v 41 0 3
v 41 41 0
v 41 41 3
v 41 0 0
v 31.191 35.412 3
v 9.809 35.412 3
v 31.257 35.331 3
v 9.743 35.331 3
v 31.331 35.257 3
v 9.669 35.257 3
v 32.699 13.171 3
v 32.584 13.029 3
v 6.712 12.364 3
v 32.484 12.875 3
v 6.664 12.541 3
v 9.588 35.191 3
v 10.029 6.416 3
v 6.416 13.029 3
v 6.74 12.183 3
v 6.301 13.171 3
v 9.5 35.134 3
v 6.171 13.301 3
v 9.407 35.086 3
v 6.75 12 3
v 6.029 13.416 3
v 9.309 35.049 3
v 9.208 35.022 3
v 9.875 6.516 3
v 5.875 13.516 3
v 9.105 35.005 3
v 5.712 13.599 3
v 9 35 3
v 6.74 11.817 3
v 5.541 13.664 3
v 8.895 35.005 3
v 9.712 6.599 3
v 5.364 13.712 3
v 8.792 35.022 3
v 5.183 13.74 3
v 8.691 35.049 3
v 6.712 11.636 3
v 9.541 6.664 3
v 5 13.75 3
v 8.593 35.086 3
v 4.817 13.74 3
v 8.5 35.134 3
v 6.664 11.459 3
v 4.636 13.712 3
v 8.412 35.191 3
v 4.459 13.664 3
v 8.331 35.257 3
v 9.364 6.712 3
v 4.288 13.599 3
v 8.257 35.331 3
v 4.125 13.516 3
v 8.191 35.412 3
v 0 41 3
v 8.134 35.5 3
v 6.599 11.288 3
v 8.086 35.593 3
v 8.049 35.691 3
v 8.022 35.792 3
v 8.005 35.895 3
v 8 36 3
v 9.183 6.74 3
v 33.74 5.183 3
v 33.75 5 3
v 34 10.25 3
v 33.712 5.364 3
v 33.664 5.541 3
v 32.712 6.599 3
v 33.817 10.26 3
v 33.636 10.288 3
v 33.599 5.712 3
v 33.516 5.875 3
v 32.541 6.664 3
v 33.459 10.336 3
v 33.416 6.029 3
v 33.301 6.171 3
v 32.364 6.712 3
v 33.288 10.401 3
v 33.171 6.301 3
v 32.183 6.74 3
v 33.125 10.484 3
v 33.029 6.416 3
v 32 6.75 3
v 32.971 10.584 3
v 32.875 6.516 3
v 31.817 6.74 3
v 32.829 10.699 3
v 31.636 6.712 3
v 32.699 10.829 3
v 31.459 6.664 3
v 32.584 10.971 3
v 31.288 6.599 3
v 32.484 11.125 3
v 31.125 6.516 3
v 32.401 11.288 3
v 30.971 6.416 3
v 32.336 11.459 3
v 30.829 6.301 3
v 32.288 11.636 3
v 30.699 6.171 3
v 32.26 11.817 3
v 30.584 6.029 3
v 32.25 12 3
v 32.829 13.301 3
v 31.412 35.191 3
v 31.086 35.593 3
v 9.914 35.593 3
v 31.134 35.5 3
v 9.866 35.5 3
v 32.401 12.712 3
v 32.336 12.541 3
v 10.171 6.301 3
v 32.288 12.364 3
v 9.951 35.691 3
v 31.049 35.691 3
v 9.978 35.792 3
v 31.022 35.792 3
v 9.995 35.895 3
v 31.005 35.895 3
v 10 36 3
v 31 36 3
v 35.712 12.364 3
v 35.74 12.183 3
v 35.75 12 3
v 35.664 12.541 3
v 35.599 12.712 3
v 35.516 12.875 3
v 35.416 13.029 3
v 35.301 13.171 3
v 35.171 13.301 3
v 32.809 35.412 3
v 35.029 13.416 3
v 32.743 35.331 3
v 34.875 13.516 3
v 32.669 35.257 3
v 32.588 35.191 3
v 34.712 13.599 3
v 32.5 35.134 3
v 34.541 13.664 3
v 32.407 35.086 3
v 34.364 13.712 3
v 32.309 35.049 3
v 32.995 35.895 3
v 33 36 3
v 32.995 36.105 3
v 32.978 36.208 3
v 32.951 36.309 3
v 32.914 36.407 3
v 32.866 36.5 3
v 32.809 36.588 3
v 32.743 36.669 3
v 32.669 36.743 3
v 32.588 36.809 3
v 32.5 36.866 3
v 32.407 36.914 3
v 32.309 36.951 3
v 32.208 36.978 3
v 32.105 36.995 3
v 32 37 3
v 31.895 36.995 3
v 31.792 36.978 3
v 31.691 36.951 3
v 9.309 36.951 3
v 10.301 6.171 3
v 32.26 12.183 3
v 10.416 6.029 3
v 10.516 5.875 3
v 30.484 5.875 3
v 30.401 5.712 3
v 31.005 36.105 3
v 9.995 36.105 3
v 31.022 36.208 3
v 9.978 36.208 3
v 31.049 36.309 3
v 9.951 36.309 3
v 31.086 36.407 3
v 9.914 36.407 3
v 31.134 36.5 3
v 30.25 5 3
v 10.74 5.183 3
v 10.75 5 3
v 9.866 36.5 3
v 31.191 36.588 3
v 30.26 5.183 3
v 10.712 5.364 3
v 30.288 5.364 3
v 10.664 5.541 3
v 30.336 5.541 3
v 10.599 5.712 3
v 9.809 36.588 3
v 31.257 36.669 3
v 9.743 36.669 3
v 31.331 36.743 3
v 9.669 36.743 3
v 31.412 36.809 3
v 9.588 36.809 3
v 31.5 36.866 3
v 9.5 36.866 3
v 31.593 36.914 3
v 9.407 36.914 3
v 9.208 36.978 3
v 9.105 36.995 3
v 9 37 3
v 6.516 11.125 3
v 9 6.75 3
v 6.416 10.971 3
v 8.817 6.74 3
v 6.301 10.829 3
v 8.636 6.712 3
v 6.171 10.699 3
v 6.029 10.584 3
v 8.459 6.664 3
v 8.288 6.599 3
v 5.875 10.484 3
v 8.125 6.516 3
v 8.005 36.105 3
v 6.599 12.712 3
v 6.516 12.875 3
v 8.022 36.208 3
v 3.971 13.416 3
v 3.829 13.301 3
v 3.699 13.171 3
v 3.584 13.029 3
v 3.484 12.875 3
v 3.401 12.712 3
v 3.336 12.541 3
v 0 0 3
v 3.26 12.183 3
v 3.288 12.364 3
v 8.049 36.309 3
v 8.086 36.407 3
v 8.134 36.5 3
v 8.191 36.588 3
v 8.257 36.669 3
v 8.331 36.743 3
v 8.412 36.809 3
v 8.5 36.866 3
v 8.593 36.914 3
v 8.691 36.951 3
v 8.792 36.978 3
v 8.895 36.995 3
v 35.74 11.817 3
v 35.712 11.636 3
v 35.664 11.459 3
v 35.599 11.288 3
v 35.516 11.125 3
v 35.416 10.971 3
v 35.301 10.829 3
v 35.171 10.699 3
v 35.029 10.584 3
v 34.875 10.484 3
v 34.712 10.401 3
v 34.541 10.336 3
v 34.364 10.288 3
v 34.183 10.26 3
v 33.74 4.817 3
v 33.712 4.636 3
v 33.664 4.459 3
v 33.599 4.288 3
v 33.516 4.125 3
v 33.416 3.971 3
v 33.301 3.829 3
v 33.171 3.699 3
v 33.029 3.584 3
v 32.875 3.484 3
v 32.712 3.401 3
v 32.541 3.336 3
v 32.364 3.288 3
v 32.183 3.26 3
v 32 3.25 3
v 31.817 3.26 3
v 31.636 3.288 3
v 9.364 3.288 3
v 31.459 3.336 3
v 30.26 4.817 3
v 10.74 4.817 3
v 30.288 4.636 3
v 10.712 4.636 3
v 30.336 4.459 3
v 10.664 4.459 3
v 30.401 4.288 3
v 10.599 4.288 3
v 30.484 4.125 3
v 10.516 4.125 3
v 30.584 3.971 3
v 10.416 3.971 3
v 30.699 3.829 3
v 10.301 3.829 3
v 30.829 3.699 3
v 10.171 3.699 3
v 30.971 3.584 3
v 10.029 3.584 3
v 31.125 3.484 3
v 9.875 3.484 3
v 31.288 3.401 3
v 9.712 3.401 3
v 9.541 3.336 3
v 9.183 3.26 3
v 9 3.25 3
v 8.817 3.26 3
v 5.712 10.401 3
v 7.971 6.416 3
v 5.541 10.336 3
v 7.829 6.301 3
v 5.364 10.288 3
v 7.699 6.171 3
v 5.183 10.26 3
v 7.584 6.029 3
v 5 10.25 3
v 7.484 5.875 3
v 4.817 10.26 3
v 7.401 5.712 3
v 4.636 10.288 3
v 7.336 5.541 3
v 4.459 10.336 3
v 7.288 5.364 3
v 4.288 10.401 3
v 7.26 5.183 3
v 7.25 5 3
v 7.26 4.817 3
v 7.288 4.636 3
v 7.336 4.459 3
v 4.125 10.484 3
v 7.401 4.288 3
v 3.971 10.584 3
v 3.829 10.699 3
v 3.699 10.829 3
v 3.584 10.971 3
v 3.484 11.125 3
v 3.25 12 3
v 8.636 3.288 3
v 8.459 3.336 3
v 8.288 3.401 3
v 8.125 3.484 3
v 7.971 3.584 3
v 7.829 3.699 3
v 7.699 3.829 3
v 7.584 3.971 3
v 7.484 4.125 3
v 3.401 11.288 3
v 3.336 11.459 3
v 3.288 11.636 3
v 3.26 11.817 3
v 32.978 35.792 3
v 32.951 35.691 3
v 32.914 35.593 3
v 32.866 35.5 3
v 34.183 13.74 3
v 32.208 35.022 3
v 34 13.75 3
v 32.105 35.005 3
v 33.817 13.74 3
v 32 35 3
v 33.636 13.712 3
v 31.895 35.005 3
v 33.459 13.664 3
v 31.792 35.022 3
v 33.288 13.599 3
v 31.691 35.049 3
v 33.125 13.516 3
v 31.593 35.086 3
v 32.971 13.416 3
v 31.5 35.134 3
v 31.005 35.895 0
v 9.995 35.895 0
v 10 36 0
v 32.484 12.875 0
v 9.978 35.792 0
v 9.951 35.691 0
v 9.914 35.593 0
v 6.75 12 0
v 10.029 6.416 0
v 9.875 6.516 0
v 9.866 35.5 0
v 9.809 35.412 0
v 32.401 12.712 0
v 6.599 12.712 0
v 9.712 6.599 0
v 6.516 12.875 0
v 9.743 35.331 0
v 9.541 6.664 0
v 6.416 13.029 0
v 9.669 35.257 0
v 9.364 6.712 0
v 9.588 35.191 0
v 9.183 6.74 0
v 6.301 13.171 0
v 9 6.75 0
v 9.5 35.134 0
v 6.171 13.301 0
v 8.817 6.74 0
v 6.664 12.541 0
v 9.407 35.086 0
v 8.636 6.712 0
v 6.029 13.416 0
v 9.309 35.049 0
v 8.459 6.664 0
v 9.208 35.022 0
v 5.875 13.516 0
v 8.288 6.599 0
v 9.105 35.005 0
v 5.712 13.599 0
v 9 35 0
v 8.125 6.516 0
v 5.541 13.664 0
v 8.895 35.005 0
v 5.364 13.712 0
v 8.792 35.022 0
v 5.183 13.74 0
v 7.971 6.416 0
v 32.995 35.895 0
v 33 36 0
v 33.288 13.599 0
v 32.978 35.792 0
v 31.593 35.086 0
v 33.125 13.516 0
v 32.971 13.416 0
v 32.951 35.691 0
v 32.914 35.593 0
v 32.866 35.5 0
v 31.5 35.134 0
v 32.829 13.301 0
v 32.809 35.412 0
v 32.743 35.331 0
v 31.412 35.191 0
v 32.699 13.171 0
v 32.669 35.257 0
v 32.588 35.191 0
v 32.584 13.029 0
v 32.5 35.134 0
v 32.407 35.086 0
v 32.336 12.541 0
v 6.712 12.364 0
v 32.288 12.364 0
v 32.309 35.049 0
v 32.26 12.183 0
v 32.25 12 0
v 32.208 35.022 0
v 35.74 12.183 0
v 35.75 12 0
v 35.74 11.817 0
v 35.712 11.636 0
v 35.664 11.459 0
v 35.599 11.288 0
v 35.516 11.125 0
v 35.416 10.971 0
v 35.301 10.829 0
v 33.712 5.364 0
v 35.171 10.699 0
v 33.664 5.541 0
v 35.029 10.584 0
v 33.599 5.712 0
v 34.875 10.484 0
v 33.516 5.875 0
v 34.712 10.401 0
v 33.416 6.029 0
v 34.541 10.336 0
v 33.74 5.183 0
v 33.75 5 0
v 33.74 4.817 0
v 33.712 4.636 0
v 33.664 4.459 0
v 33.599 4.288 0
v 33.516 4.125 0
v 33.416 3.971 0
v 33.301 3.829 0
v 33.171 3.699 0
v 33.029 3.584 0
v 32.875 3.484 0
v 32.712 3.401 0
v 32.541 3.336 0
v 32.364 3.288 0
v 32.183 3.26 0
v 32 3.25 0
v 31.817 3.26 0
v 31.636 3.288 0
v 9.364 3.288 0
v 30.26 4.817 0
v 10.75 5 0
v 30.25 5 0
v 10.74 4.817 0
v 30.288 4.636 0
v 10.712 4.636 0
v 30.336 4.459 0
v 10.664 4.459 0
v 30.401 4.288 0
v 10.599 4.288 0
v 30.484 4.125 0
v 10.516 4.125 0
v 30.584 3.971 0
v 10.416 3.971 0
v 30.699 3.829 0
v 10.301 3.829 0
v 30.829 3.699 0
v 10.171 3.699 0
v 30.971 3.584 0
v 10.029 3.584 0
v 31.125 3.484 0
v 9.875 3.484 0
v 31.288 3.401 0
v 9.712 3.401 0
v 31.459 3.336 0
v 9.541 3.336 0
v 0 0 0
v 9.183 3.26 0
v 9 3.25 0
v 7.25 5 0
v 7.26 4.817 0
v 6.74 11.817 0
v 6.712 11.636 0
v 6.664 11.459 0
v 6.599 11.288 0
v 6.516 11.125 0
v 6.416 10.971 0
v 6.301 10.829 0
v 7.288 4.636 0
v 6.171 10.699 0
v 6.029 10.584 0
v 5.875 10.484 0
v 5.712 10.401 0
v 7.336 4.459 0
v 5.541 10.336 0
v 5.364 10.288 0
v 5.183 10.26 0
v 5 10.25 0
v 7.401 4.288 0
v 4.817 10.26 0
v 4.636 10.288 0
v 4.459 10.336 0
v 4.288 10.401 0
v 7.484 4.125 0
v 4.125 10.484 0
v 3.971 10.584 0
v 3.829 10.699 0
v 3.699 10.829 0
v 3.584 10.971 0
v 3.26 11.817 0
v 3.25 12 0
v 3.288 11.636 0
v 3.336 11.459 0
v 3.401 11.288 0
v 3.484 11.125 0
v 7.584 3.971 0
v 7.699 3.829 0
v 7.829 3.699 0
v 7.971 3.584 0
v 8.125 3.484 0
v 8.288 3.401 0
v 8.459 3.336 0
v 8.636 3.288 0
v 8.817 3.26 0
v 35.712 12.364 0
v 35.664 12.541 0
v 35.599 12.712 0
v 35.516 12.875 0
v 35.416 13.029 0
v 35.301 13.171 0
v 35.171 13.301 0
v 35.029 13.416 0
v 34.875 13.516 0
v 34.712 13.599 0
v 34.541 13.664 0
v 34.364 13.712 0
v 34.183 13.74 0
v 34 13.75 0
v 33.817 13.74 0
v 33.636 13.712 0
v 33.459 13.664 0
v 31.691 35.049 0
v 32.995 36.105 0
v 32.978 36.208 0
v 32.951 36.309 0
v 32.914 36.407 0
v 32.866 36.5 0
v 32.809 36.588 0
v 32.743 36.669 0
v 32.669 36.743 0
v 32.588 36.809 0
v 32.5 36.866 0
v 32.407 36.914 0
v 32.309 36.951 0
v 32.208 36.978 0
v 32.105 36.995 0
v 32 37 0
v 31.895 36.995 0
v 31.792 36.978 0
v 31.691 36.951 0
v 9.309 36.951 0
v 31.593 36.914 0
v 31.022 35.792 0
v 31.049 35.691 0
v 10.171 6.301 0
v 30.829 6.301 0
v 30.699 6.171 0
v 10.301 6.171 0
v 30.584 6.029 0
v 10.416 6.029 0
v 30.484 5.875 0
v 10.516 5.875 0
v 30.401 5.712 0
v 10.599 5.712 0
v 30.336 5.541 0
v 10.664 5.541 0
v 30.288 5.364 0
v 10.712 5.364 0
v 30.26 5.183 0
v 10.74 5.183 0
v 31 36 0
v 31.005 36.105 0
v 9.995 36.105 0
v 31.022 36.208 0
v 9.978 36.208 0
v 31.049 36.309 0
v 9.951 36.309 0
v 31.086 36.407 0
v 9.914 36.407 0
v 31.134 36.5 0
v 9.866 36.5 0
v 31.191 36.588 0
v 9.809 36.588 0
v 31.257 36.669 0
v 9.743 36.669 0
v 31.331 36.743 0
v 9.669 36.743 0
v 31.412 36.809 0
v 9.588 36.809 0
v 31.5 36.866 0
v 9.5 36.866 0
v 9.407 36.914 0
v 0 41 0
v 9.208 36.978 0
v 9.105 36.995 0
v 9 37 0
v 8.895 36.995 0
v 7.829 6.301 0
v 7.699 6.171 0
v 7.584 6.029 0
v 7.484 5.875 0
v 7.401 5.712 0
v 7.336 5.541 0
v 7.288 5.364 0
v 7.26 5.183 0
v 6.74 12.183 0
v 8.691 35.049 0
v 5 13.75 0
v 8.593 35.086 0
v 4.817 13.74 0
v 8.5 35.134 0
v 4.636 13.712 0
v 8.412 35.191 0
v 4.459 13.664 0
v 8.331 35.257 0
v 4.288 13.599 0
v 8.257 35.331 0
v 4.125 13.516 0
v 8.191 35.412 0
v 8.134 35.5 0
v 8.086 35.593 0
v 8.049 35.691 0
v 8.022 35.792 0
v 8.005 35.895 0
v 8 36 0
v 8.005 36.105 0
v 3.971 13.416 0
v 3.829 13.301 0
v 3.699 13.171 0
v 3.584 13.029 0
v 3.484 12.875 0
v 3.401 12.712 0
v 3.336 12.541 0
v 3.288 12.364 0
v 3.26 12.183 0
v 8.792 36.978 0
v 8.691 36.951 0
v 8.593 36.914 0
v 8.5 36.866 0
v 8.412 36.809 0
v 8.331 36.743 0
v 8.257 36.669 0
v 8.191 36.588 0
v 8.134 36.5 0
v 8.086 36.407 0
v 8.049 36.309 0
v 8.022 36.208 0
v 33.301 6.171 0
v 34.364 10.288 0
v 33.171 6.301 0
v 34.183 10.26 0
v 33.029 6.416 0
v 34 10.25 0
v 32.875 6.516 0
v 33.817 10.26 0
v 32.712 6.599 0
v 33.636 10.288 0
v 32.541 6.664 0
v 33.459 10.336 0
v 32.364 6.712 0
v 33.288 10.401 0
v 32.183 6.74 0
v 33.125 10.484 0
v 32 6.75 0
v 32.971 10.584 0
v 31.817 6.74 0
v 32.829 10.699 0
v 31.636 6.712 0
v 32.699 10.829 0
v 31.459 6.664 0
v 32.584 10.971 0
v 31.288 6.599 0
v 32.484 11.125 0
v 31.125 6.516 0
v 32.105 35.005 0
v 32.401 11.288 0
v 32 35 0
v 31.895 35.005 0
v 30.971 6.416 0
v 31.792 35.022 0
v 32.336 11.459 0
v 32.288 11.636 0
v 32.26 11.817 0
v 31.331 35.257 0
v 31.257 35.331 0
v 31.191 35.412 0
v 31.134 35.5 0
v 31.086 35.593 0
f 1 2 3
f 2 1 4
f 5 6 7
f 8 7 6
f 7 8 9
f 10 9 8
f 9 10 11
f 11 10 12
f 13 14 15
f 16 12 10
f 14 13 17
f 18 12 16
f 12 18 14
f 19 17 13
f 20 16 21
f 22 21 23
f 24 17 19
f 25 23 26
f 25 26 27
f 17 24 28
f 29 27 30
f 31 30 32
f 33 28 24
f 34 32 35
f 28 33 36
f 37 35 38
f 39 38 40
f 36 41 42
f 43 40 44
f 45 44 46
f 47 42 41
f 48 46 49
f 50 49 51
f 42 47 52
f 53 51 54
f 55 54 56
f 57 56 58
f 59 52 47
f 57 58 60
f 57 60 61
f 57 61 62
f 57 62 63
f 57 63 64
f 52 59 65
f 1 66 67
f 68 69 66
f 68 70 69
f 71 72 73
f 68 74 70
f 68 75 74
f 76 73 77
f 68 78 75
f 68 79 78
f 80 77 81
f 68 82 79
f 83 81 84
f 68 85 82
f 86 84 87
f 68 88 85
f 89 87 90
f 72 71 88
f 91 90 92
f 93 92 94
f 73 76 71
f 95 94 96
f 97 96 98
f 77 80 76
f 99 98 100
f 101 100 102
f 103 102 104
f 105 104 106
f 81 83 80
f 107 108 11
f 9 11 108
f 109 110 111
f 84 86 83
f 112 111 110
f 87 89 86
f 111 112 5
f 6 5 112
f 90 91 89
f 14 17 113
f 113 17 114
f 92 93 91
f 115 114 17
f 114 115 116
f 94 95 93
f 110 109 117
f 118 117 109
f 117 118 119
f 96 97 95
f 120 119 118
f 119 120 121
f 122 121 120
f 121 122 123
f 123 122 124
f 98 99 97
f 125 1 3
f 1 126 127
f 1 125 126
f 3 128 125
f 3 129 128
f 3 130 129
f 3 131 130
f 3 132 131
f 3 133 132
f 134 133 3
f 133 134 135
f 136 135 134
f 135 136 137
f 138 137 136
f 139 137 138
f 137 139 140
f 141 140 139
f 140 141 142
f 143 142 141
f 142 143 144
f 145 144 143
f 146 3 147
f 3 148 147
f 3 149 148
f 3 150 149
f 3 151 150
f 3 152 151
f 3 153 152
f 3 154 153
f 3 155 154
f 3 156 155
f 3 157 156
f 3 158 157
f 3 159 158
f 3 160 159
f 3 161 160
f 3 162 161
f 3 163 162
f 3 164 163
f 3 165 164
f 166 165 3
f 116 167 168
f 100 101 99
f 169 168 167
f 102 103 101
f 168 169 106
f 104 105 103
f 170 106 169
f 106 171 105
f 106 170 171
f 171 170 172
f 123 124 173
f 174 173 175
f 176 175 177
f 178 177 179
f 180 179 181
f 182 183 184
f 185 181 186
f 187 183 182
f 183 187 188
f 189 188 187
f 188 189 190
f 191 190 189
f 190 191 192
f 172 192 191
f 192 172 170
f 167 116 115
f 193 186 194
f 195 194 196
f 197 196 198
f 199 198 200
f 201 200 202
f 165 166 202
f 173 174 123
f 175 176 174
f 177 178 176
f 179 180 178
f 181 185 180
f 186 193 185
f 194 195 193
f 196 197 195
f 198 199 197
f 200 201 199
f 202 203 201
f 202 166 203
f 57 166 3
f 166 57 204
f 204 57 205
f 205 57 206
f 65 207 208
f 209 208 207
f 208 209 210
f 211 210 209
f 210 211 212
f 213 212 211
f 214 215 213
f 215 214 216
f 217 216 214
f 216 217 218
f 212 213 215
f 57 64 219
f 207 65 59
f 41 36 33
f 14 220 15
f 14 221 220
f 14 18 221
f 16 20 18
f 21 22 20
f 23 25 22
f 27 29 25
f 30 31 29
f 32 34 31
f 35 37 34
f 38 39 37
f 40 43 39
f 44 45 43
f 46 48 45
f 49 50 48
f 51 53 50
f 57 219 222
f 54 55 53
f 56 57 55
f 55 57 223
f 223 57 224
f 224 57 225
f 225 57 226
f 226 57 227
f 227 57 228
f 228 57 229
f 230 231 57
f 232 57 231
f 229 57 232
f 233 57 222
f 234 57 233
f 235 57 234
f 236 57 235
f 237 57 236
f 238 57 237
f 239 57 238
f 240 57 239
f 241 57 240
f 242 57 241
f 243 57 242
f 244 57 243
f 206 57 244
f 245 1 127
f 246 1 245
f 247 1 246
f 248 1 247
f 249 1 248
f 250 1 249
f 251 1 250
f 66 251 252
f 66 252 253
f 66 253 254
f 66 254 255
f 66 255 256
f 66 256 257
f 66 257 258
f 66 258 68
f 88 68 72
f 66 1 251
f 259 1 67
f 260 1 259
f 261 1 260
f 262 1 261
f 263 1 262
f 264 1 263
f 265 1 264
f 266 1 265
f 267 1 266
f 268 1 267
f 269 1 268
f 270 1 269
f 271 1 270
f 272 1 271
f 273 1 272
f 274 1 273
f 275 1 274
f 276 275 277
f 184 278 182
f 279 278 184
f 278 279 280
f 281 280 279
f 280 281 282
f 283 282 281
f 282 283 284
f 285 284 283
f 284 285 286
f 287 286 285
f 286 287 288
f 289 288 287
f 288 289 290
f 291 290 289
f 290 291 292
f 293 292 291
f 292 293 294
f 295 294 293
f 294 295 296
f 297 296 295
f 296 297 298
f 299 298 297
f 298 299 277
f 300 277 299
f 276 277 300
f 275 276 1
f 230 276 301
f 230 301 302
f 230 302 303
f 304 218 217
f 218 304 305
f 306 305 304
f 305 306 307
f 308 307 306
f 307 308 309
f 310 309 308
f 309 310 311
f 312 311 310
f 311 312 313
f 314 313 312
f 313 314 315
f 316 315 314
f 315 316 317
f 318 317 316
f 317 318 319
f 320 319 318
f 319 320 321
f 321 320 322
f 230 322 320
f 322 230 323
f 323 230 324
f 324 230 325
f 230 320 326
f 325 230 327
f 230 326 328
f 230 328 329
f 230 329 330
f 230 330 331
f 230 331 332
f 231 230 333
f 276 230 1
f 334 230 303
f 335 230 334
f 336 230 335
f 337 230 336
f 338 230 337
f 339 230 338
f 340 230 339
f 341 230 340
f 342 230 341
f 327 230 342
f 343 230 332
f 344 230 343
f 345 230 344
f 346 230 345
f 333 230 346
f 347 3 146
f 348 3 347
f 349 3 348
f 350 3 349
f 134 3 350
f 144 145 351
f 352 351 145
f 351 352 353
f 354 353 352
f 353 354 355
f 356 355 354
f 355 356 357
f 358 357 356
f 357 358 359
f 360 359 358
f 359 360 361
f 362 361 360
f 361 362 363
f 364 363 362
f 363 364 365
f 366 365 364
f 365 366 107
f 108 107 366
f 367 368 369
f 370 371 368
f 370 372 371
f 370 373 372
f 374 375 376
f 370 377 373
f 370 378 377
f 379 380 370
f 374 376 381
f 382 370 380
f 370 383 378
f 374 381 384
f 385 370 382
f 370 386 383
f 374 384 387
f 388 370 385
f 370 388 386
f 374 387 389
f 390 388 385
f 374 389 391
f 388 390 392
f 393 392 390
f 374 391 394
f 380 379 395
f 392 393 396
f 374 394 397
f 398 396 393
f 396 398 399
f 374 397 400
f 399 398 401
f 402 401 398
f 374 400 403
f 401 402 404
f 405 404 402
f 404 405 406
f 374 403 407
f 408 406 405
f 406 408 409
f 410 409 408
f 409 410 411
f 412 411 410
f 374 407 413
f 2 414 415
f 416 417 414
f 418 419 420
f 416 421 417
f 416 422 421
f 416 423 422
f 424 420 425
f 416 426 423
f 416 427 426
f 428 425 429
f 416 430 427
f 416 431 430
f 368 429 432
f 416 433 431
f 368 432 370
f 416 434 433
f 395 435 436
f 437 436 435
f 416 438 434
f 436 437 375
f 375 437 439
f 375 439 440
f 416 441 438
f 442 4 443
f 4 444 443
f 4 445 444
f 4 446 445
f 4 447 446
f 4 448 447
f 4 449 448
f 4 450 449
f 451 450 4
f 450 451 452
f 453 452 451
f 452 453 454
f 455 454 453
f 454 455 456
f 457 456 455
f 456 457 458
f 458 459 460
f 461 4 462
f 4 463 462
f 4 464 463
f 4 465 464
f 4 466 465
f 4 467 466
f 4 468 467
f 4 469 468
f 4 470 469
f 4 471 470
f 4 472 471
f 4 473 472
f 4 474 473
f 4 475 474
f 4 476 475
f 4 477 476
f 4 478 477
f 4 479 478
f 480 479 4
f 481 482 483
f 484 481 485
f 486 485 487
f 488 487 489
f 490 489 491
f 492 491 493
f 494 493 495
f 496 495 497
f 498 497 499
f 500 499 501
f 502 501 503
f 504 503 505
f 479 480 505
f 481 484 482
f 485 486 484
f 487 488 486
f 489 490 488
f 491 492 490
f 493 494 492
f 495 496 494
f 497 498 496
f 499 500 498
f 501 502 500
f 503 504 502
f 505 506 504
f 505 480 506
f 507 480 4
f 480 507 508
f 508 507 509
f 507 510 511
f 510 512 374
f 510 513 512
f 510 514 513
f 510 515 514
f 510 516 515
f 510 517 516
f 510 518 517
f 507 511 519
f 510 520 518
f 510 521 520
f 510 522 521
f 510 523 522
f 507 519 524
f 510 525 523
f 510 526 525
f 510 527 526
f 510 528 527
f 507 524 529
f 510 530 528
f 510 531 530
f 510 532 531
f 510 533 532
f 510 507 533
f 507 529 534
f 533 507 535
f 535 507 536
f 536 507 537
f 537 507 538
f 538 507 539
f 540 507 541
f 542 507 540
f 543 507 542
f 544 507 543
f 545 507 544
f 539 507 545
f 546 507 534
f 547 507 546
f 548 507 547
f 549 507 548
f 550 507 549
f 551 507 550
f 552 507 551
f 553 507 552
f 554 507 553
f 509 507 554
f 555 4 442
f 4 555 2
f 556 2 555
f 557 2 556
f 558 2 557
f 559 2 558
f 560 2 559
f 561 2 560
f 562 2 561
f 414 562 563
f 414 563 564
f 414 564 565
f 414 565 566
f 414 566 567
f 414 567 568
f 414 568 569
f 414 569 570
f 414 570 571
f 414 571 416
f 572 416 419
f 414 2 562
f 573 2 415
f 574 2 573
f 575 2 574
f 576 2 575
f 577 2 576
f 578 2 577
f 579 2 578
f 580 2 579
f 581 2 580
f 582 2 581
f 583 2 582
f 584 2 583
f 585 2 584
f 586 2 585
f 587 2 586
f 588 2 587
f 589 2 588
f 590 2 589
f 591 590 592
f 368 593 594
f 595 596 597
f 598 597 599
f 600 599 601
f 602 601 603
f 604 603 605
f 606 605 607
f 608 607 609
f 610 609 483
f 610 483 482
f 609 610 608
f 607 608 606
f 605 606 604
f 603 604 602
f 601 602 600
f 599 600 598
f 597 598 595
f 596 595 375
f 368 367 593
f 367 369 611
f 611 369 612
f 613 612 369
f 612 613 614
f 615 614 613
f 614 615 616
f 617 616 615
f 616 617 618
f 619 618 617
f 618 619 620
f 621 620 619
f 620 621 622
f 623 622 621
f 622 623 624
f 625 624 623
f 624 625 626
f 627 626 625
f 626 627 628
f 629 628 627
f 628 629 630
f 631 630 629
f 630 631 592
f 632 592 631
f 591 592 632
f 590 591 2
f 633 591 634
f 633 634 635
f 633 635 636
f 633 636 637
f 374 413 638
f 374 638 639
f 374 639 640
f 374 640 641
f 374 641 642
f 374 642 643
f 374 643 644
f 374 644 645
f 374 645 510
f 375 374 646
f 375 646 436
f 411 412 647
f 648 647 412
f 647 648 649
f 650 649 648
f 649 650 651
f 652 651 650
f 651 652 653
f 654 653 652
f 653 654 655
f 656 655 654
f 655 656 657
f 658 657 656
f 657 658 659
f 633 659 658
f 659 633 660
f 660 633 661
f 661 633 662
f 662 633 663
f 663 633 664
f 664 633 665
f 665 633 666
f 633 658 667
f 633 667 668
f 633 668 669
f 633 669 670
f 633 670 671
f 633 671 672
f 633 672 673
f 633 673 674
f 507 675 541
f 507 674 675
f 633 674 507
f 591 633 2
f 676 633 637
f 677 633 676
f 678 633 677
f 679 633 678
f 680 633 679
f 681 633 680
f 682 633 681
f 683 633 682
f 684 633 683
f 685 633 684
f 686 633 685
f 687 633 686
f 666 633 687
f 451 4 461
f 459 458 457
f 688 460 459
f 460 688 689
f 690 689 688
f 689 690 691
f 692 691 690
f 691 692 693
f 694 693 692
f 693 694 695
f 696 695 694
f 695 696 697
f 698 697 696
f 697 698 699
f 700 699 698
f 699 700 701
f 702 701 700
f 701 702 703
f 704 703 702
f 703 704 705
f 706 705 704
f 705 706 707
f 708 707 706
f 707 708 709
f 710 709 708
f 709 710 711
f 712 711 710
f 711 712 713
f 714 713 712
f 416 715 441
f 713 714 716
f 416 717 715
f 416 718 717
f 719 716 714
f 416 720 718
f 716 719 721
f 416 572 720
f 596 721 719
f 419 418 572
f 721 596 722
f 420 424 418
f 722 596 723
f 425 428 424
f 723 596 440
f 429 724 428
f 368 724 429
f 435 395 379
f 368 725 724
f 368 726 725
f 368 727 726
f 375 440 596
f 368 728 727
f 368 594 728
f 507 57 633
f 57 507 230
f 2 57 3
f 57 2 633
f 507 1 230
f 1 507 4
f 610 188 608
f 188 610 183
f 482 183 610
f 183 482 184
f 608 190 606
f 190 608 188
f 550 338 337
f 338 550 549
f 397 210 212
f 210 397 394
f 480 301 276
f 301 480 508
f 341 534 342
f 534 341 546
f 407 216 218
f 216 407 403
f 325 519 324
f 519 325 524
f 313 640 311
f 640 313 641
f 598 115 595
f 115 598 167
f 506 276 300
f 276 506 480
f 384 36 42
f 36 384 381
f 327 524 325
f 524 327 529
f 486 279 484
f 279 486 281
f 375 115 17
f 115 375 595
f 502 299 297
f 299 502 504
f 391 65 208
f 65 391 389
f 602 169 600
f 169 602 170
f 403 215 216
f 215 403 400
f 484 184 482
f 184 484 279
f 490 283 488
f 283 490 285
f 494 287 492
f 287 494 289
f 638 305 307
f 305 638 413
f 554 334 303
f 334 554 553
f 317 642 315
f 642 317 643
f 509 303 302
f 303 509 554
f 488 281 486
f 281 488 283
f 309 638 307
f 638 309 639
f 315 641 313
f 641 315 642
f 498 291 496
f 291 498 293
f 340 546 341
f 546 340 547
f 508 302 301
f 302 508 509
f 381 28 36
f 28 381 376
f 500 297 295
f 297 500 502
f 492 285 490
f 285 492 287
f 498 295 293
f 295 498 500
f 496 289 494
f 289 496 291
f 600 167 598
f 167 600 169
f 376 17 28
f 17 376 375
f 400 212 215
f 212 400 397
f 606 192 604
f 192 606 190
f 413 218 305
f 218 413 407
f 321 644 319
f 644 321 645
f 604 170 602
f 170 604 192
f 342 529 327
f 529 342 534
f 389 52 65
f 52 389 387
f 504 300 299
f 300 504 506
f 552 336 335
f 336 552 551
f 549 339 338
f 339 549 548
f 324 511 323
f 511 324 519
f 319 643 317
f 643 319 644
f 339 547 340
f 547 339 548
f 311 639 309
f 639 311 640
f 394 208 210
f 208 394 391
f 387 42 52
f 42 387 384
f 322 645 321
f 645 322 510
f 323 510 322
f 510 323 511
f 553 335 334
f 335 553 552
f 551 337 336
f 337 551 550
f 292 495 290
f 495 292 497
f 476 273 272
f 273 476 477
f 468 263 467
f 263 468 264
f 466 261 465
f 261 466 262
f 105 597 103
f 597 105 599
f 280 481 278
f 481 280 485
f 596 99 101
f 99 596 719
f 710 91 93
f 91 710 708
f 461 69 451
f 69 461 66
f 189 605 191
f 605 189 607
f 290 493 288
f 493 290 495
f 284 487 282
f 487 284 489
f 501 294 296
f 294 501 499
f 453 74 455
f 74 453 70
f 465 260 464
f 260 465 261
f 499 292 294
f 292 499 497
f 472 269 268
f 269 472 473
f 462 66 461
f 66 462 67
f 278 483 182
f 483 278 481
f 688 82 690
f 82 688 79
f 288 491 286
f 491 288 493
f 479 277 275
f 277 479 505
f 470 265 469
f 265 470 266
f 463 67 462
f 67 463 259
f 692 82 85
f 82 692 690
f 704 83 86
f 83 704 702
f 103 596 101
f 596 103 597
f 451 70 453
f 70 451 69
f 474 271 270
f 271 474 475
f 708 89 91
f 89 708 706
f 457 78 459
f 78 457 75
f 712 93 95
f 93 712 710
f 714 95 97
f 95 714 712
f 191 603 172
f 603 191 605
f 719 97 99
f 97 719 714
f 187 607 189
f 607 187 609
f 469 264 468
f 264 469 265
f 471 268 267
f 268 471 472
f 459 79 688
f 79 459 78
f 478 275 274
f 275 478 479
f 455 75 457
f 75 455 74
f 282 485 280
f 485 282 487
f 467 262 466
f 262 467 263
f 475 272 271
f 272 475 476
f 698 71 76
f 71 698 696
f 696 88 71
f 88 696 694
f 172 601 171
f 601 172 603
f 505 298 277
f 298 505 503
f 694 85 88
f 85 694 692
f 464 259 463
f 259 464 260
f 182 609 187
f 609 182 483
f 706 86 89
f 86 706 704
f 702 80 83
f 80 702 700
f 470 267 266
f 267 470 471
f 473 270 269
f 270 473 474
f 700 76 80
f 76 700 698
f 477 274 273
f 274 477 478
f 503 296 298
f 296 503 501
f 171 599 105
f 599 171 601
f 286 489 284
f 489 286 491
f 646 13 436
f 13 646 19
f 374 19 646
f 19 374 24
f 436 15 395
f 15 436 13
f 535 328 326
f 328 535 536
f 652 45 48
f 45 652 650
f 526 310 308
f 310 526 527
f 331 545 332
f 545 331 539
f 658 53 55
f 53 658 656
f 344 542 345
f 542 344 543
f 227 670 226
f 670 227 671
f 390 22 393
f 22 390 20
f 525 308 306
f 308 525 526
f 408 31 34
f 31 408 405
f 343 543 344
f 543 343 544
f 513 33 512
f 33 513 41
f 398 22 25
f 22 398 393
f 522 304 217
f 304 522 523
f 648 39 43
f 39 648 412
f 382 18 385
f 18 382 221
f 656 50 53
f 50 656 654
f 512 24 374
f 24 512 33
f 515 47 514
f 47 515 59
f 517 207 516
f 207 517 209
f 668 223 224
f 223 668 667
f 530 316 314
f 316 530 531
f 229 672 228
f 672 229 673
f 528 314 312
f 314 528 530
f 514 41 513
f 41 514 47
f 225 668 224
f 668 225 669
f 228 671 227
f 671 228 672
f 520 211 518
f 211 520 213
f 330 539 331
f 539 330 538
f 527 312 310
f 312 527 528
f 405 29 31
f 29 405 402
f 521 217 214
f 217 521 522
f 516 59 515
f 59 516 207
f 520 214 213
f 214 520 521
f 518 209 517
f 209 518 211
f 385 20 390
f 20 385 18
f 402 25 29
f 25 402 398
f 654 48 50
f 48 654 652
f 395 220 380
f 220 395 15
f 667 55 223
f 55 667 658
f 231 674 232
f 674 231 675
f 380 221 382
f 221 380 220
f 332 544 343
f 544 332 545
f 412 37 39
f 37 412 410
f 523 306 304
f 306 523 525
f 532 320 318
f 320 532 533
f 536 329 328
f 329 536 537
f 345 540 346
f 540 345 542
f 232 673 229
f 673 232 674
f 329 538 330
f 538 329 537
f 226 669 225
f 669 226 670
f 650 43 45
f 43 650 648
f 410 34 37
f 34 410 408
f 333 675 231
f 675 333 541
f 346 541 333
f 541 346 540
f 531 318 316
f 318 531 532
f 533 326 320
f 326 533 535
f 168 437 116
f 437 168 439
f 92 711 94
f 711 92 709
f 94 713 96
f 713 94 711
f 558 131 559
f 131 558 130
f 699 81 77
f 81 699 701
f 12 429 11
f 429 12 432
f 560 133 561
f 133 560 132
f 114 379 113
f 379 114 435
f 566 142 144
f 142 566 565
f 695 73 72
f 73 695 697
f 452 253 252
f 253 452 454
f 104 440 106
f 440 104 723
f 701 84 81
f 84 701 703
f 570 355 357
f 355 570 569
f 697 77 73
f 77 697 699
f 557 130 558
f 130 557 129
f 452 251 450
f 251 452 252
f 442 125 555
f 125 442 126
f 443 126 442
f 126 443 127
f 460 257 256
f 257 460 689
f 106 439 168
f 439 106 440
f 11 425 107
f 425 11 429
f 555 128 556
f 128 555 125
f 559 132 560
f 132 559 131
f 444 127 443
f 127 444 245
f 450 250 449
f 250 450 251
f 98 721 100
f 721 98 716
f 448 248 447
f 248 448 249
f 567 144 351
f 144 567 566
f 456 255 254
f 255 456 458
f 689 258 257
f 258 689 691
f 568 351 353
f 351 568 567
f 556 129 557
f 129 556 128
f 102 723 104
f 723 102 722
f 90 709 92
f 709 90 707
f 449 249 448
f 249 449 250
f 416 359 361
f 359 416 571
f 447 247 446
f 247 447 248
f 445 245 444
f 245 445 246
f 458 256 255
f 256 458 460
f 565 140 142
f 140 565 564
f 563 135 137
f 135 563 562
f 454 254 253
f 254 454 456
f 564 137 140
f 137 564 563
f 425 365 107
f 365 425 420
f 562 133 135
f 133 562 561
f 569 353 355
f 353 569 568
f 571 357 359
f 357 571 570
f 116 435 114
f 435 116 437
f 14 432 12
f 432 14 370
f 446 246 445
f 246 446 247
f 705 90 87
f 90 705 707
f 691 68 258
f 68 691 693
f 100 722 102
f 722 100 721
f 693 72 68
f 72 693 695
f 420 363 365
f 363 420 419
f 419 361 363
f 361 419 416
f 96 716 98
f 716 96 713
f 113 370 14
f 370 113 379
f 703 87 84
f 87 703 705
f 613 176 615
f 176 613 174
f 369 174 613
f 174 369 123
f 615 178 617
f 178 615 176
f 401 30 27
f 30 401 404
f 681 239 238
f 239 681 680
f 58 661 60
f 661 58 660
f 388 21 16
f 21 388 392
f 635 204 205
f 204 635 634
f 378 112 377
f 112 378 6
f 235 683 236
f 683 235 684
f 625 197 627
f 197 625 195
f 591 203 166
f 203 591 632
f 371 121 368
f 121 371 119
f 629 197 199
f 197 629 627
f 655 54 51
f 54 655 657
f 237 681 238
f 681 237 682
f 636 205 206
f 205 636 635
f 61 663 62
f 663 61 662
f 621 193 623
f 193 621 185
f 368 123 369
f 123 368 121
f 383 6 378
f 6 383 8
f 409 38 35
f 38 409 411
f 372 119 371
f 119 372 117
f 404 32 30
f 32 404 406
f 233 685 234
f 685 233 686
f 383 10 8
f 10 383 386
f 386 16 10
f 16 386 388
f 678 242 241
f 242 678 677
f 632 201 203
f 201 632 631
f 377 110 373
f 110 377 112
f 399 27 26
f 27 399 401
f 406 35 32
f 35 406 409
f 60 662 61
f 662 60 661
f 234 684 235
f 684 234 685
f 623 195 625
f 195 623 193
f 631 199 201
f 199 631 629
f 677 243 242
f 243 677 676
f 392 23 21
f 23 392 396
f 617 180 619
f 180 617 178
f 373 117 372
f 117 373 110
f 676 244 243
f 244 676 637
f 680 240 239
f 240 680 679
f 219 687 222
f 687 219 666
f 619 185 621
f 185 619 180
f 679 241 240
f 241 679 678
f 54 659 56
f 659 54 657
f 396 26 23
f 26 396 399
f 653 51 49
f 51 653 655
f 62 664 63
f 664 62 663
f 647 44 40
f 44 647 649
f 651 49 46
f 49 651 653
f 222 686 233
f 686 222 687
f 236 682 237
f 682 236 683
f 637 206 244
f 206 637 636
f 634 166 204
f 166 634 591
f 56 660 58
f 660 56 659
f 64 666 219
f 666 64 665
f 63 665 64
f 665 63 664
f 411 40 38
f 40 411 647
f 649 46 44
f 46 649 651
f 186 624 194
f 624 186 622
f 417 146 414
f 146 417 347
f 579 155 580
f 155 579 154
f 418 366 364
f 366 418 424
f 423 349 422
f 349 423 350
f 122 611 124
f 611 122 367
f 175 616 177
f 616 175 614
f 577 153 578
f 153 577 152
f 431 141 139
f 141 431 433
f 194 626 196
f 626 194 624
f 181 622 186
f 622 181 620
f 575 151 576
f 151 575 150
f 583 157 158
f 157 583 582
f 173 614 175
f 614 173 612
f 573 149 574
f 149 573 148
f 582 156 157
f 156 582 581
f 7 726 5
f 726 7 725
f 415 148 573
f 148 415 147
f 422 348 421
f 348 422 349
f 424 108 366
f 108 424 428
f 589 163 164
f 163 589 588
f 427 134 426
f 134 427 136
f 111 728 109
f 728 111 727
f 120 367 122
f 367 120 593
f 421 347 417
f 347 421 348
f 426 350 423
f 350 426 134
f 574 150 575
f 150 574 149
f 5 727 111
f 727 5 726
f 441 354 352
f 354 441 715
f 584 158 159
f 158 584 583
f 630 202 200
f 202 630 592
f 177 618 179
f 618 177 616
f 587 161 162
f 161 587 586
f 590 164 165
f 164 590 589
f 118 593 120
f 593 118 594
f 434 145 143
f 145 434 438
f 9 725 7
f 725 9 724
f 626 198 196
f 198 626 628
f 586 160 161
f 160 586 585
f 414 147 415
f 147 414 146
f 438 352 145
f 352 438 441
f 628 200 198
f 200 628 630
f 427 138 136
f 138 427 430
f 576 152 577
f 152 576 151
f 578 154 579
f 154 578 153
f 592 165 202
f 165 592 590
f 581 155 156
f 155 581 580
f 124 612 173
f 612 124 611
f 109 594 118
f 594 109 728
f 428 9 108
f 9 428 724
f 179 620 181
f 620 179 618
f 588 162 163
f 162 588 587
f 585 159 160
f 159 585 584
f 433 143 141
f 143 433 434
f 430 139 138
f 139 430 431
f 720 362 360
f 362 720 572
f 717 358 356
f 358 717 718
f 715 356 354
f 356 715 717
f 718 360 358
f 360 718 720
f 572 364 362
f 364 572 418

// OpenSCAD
// file: wntrmute.scad
function M2() = 1;
function M25() = 1.25;
function M3() = 1.75;
function M4() = 2.1;
function PlateHeight() = 2.5;
    

module screw_hole(size, x, y, height=PlateHeight()+1) {
    union() {
       translate([x, y, -1])
       cylinder(h=5, r=size, $fn=60); 
    };
}

// x and y are the center point for the battery mount.
module battery_mount(x, y, size=M3(), rotation=0) {
    offset = 19.5 / 2;
    union() {
        screw_hole(size, x-offset, y);
        screw_hole(size, x+offset, y);
    }
}

module arduino_uno(x, y, size=M3(), rotation=0) {
    union() {
        screw_hole(size, x, y); 
        screw_hole(size, x+50.8, y-15.2);
        screw_hole(size, x+50.8, y-43.1);
        screw_hole(size, x, y-48.3);
    }
}

module robot_power_board(x, y, size=M3(), rotation=0) {
    union() {
        screw_hole(size, x, y);
        screw_hole(size, x+31.5, y);
        screw_hole(size, x, y+18.5);
        screw_hole(size, x+31.5, y+18.5);
    }
}

module raspberry_pi_zero(x, y, size=M3(), rotation=0) {
    union () {
        screw_hole(size, x, y);
        screw_hole(size, x+58, y);
        screw_hole(size, x, y+23);
        screw_hole(size, x+58, y+23);
    }
}

module raspberry_pi_3(x, y, size=M3(), rotation=0) {
    union () {
        screw_hole(size, x, y);
        screw_hole(size, x+58, y);
        screw_hole(size, x, y+49);
        screw_hole(size, x+58, y+49);
    }
}

module ultrasonic_mount(x, y, size=M3(), rotation=undef) {
    //rotate(rotation?rotation:[0,0,0])
    union() {
        screw_hole(size, x, y);
        screw_hole(size, x+13, y);
    }
}
// main file
use <wntrmute.scad>;

// 23 29

difference() {
    cube([41, 41, 3]);
    screw_hole(M3(), 9, 5);
    screw_hole(M3(), 32, 5);
    screw_hole(M3(), 5, 12);
    screw_hole(M3(), 34, 12);
    screw_hole(M2(), 9, 36);
    screw_hole(M2(), 32, 36);
}
